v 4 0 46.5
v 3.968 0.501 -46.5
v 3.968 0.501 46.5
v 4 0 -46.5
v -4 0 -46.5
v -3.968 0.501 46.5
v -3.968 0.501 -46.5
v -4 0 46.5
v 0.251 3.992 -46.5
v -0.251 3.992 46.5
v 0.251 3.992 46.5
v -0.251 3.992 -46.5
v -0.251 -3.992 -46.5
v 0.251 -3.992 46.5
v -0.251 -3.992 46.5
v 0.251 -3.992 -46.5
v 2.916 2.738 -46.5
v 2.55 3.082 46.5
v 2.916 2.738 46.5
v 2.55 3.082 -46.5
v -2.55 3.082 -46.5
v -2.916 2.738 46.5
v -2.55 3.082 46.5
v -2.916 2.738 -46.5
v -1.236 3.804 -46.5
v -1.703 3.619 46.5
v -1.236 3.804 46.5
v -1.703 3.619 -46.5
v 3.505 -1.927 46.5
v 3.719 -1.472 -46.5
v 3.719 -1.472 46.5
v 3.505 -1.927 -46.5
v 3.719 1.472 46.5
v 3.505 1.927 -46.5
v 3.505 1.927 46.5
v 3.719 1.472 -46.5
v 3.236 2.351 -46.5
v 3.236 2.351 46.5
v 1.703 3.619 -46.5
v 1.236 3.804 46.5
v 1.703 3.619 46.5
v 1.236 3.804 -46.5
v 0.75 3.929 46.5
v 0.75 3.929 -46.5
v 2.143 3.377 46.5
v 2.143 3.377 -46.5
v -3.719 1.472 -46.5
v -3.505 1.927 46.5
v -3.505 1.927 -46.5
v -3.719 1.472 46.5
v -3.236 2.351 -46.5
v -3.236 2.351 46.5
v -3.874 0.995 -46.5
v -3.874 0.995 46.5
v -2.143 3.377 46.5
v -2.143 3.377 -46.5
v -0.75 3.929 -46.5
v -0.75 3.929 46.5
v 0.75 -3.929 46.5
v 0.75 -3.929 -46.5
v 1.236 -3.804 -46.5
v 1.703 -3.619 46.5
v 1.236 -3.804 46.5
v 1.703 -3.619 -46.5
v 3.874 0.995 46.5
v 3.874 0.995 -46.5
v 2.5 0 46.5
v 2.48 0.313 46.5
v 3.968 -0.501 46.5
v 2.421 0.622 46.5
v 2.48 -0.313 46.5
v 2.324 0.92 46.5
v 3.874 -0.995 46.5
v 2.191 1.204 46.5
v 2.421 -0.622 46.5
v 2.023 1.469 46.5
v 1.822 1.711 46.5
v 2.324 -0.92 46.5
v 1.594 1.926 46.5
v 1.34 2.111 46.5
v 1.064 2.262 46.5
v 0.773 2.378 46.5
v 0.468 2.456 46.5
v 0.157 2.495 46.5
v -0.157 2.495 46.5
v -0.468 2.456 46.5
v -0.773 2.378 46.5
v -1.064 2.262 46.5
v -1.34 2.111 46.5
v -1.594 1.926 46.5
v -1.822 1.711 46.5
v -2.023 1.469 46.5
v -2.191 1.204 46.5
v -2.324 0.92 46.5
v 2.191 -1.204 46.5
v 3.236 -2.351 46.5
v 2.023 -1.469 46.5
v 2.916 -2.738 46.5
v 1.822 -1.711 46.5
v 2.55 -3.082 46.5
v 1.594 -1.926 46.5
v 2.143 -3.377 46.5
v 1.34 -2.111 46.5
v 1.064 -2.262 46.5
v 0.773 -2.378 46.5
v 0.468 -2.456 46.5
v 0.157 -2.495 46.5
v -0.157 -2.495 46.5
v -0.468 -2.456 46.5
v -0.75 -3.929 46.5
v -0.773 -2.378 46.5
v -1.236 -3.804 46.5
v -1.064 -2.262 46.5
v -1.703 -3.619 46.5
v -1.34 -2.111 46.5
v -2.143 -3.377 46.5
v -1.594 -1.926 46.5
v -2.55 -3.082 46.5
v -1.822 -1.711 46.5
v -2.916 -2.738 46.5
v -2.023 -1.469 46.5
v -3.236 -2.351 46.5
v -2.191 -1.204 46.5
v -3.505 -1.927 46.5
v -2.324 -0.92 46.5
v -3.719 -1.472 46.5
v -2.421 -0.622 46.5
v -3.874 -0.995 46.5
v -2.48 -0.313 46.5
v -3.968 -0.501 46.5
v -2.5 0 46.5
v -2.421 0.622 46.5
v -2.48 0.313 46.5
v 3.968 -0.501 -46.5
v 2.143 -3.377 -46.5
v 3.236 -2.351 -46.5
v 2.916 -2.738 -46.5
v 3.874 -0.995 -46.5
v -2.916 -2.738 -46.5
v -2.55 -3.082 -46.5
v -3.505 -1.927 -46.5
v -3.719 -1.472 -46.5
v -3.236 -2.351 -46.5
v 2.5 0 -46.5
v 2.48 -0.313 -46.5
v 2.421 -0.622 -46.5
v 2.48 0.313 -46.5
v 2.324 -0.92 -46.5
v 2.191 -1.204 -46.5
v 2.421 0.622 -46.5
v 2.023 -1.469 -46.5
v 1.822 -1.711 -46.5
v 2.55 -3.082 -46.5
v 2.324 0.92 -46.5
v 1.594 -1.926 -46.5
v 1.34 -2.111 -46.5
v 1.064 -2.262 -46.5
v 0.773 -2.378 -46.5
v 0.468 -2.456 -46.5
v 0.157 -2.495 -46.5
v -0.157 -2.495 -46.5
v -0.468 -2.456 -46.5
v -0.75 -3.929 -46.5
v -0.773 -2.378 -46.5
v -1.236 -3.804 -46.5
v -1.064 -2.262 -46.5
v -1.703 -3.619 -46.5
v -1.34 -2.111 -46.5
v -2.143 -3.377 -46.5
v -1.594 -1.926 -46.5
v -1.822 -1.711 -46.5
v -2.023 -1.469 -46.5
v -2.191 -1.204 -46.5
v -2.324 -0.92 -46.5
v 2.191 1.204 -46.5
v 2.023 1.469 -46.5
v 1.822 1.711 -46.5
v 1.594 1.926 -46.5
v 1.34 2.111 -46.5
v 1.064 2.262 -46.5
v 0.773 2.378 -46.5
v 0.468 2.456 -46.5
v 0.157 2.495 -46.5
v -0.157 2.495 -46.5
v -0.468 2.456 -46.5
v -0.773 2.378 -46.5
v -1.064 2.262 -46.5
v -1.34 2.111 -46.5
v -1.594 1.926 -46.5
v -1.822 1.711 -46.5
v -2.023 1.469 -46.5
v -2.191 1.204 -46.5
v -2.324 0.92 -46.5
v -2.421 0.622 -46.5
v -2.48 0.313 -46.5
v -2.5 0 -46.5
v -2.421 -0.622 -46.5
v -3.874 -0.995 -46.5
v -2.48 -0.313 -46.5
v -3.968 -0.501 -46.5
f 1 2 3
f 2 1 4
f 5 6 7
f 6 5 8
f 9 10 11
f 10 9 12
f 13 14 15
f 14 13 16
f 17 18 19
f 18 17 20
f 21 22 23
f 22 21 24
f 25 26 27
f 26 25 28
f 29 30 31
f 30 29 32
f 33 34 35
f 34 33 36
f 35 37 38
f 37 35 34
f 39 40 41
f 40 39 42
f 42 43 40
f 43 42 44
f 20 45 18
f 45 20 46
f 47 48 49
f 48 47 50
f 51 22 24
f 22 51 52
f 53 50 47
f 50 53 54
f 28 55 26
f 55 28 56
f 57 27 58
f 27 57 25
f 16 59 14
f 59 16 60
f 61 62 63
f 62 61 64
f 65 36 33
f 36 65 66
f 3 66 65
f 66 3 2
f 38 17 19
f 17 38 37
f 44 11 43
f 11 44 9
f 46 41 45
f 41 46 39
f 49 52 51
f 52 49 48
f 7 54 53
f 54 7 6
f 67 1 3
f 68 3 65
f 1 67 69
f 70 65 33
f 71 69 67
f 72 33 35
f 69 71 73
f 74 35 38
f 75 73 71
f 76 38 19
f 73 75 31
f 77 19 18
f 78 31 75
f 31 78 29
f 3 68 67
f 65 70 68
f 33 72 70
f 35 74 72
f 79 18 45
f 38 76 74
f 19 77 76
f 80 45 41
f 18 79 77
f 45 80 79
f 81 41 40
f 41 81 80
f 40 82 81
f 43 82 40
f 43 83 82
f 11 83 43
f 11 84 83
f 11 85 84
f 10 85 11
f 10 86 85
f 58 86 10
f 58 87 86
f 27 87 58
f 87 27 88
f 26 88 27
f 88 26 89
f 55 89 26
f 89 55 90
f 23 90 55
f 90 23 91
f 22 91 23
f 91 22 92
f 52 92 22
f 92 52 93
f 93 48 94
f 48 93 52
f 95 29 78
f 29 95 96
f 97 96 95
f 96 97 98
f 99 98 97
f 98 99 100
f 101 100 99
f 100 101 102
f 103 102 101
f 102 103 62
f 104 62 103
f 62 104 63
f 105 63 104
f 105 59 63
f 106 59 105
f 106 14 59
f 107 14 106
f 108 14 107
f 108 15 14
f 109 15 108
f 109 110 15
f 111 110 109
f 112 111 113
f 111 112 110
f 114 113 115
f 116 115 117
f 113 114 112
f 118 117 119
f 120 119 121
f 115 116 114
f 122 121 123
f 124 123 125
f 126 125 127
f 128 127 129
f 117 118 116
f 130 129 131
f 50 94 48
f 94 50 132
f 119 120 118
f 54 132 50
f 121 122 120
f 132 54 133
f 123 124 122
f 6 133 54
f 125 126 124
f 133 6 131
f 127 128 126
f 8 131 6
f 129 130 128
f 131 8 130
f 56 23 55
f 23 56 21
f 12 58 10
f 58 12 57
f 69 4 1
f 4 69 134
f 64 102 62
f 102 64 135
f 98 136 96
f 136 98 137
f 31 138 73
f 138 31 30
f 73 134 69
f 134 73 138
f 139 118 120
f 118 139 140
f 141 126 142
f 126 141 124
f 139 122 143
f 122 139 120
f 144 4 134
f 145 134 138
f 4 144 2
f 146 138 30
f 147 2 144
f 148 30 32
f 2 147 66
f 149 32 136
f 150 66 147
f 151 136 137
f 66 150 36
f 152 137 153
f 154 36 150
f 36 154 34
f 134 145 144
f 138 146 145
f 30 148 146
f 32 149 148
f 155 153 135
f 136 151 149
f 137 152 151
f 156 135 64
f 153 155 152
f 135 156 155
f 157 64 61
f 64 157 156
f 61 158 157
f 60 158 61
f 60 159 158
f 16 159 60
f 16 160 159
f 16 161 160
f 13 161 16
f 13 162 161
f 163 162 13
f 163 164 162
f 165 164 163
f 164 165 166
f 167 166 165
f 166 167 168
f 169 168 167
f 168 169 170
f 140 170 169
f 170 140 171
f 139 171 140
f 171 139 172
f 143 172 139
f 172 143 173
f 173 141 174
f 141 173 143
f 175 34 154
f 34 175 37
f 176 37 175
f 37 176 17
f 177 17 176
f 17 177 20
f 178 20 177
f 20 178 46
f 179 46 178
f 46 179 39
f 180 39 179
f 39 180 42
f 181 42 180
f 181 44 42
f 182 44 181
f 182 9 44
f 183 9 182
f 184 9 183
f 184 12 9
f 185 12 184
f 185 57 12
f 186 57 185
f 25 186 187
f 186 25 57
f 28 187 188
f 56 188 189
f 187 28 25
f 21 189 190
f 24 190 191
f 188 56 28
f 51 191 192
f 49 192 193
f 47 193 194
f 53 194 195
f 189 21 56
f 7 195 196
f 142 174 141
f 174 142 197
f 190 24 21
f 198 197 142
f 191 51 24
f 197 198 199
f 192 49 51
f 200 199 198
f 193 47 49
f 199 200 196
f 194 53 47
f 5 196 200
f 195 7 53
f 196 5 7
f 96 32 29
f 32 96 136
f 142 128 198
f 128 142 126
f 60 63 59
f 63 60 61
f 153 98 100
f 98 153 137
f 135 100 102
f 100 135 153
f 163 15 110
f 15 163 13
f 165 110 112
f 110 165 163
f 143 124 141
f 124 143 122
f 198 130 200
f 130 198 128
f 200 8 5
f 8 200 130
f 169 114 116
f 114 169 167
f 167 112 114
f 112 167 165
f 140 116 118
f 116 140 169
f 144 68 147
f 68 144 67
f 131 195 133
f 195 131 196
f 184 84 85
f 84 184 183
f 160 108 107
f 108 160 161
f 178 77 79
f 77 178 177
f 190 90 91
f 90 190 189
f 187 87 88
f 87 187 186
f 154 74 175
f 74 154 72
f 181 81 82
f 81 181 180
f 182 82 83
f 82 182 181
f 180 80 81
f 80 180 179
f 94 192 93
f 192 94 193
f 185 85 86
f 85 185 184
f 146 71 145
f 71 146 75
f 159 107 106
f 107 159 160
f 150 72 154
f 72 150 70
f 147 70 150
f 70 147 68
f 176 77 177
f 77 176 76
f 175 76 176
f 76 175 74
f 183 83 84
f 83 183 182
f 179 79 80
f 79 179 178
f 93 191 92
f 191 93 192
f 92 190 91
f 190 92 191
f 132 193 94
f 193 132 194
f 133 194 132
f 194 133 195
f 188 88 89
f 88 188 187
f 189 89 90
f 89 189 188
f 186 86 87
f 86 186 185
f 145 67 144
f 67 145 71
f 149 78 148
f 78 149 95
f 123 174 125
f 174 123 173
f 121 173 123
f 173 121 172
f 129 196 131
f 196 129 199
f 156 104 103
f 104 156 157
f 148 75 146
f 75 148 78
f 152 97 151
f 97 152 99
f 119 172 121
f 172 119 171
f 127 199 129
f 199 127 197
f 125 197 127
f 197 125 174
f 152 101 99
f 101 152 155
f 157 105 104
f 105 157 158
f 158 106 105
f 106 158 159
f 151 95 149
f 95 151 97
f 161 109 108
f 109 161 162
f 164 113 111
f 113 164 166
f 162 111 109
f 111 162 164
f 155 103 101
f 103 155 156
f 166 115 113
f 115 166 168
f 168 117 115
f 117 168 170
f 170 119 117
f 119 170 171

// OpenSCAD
$fn = 50;


difference() {
	union() {
		translate(v = [0, 0, -46.5000000000]) {
			cylinder(h = 93, r = 4.0000000000);
		}
	}
	union() {
		translate(v = [0, 0, -100.0000000000]) {
			cylinder(h = 200, r = 2.5000000000);
		}
	}
}
